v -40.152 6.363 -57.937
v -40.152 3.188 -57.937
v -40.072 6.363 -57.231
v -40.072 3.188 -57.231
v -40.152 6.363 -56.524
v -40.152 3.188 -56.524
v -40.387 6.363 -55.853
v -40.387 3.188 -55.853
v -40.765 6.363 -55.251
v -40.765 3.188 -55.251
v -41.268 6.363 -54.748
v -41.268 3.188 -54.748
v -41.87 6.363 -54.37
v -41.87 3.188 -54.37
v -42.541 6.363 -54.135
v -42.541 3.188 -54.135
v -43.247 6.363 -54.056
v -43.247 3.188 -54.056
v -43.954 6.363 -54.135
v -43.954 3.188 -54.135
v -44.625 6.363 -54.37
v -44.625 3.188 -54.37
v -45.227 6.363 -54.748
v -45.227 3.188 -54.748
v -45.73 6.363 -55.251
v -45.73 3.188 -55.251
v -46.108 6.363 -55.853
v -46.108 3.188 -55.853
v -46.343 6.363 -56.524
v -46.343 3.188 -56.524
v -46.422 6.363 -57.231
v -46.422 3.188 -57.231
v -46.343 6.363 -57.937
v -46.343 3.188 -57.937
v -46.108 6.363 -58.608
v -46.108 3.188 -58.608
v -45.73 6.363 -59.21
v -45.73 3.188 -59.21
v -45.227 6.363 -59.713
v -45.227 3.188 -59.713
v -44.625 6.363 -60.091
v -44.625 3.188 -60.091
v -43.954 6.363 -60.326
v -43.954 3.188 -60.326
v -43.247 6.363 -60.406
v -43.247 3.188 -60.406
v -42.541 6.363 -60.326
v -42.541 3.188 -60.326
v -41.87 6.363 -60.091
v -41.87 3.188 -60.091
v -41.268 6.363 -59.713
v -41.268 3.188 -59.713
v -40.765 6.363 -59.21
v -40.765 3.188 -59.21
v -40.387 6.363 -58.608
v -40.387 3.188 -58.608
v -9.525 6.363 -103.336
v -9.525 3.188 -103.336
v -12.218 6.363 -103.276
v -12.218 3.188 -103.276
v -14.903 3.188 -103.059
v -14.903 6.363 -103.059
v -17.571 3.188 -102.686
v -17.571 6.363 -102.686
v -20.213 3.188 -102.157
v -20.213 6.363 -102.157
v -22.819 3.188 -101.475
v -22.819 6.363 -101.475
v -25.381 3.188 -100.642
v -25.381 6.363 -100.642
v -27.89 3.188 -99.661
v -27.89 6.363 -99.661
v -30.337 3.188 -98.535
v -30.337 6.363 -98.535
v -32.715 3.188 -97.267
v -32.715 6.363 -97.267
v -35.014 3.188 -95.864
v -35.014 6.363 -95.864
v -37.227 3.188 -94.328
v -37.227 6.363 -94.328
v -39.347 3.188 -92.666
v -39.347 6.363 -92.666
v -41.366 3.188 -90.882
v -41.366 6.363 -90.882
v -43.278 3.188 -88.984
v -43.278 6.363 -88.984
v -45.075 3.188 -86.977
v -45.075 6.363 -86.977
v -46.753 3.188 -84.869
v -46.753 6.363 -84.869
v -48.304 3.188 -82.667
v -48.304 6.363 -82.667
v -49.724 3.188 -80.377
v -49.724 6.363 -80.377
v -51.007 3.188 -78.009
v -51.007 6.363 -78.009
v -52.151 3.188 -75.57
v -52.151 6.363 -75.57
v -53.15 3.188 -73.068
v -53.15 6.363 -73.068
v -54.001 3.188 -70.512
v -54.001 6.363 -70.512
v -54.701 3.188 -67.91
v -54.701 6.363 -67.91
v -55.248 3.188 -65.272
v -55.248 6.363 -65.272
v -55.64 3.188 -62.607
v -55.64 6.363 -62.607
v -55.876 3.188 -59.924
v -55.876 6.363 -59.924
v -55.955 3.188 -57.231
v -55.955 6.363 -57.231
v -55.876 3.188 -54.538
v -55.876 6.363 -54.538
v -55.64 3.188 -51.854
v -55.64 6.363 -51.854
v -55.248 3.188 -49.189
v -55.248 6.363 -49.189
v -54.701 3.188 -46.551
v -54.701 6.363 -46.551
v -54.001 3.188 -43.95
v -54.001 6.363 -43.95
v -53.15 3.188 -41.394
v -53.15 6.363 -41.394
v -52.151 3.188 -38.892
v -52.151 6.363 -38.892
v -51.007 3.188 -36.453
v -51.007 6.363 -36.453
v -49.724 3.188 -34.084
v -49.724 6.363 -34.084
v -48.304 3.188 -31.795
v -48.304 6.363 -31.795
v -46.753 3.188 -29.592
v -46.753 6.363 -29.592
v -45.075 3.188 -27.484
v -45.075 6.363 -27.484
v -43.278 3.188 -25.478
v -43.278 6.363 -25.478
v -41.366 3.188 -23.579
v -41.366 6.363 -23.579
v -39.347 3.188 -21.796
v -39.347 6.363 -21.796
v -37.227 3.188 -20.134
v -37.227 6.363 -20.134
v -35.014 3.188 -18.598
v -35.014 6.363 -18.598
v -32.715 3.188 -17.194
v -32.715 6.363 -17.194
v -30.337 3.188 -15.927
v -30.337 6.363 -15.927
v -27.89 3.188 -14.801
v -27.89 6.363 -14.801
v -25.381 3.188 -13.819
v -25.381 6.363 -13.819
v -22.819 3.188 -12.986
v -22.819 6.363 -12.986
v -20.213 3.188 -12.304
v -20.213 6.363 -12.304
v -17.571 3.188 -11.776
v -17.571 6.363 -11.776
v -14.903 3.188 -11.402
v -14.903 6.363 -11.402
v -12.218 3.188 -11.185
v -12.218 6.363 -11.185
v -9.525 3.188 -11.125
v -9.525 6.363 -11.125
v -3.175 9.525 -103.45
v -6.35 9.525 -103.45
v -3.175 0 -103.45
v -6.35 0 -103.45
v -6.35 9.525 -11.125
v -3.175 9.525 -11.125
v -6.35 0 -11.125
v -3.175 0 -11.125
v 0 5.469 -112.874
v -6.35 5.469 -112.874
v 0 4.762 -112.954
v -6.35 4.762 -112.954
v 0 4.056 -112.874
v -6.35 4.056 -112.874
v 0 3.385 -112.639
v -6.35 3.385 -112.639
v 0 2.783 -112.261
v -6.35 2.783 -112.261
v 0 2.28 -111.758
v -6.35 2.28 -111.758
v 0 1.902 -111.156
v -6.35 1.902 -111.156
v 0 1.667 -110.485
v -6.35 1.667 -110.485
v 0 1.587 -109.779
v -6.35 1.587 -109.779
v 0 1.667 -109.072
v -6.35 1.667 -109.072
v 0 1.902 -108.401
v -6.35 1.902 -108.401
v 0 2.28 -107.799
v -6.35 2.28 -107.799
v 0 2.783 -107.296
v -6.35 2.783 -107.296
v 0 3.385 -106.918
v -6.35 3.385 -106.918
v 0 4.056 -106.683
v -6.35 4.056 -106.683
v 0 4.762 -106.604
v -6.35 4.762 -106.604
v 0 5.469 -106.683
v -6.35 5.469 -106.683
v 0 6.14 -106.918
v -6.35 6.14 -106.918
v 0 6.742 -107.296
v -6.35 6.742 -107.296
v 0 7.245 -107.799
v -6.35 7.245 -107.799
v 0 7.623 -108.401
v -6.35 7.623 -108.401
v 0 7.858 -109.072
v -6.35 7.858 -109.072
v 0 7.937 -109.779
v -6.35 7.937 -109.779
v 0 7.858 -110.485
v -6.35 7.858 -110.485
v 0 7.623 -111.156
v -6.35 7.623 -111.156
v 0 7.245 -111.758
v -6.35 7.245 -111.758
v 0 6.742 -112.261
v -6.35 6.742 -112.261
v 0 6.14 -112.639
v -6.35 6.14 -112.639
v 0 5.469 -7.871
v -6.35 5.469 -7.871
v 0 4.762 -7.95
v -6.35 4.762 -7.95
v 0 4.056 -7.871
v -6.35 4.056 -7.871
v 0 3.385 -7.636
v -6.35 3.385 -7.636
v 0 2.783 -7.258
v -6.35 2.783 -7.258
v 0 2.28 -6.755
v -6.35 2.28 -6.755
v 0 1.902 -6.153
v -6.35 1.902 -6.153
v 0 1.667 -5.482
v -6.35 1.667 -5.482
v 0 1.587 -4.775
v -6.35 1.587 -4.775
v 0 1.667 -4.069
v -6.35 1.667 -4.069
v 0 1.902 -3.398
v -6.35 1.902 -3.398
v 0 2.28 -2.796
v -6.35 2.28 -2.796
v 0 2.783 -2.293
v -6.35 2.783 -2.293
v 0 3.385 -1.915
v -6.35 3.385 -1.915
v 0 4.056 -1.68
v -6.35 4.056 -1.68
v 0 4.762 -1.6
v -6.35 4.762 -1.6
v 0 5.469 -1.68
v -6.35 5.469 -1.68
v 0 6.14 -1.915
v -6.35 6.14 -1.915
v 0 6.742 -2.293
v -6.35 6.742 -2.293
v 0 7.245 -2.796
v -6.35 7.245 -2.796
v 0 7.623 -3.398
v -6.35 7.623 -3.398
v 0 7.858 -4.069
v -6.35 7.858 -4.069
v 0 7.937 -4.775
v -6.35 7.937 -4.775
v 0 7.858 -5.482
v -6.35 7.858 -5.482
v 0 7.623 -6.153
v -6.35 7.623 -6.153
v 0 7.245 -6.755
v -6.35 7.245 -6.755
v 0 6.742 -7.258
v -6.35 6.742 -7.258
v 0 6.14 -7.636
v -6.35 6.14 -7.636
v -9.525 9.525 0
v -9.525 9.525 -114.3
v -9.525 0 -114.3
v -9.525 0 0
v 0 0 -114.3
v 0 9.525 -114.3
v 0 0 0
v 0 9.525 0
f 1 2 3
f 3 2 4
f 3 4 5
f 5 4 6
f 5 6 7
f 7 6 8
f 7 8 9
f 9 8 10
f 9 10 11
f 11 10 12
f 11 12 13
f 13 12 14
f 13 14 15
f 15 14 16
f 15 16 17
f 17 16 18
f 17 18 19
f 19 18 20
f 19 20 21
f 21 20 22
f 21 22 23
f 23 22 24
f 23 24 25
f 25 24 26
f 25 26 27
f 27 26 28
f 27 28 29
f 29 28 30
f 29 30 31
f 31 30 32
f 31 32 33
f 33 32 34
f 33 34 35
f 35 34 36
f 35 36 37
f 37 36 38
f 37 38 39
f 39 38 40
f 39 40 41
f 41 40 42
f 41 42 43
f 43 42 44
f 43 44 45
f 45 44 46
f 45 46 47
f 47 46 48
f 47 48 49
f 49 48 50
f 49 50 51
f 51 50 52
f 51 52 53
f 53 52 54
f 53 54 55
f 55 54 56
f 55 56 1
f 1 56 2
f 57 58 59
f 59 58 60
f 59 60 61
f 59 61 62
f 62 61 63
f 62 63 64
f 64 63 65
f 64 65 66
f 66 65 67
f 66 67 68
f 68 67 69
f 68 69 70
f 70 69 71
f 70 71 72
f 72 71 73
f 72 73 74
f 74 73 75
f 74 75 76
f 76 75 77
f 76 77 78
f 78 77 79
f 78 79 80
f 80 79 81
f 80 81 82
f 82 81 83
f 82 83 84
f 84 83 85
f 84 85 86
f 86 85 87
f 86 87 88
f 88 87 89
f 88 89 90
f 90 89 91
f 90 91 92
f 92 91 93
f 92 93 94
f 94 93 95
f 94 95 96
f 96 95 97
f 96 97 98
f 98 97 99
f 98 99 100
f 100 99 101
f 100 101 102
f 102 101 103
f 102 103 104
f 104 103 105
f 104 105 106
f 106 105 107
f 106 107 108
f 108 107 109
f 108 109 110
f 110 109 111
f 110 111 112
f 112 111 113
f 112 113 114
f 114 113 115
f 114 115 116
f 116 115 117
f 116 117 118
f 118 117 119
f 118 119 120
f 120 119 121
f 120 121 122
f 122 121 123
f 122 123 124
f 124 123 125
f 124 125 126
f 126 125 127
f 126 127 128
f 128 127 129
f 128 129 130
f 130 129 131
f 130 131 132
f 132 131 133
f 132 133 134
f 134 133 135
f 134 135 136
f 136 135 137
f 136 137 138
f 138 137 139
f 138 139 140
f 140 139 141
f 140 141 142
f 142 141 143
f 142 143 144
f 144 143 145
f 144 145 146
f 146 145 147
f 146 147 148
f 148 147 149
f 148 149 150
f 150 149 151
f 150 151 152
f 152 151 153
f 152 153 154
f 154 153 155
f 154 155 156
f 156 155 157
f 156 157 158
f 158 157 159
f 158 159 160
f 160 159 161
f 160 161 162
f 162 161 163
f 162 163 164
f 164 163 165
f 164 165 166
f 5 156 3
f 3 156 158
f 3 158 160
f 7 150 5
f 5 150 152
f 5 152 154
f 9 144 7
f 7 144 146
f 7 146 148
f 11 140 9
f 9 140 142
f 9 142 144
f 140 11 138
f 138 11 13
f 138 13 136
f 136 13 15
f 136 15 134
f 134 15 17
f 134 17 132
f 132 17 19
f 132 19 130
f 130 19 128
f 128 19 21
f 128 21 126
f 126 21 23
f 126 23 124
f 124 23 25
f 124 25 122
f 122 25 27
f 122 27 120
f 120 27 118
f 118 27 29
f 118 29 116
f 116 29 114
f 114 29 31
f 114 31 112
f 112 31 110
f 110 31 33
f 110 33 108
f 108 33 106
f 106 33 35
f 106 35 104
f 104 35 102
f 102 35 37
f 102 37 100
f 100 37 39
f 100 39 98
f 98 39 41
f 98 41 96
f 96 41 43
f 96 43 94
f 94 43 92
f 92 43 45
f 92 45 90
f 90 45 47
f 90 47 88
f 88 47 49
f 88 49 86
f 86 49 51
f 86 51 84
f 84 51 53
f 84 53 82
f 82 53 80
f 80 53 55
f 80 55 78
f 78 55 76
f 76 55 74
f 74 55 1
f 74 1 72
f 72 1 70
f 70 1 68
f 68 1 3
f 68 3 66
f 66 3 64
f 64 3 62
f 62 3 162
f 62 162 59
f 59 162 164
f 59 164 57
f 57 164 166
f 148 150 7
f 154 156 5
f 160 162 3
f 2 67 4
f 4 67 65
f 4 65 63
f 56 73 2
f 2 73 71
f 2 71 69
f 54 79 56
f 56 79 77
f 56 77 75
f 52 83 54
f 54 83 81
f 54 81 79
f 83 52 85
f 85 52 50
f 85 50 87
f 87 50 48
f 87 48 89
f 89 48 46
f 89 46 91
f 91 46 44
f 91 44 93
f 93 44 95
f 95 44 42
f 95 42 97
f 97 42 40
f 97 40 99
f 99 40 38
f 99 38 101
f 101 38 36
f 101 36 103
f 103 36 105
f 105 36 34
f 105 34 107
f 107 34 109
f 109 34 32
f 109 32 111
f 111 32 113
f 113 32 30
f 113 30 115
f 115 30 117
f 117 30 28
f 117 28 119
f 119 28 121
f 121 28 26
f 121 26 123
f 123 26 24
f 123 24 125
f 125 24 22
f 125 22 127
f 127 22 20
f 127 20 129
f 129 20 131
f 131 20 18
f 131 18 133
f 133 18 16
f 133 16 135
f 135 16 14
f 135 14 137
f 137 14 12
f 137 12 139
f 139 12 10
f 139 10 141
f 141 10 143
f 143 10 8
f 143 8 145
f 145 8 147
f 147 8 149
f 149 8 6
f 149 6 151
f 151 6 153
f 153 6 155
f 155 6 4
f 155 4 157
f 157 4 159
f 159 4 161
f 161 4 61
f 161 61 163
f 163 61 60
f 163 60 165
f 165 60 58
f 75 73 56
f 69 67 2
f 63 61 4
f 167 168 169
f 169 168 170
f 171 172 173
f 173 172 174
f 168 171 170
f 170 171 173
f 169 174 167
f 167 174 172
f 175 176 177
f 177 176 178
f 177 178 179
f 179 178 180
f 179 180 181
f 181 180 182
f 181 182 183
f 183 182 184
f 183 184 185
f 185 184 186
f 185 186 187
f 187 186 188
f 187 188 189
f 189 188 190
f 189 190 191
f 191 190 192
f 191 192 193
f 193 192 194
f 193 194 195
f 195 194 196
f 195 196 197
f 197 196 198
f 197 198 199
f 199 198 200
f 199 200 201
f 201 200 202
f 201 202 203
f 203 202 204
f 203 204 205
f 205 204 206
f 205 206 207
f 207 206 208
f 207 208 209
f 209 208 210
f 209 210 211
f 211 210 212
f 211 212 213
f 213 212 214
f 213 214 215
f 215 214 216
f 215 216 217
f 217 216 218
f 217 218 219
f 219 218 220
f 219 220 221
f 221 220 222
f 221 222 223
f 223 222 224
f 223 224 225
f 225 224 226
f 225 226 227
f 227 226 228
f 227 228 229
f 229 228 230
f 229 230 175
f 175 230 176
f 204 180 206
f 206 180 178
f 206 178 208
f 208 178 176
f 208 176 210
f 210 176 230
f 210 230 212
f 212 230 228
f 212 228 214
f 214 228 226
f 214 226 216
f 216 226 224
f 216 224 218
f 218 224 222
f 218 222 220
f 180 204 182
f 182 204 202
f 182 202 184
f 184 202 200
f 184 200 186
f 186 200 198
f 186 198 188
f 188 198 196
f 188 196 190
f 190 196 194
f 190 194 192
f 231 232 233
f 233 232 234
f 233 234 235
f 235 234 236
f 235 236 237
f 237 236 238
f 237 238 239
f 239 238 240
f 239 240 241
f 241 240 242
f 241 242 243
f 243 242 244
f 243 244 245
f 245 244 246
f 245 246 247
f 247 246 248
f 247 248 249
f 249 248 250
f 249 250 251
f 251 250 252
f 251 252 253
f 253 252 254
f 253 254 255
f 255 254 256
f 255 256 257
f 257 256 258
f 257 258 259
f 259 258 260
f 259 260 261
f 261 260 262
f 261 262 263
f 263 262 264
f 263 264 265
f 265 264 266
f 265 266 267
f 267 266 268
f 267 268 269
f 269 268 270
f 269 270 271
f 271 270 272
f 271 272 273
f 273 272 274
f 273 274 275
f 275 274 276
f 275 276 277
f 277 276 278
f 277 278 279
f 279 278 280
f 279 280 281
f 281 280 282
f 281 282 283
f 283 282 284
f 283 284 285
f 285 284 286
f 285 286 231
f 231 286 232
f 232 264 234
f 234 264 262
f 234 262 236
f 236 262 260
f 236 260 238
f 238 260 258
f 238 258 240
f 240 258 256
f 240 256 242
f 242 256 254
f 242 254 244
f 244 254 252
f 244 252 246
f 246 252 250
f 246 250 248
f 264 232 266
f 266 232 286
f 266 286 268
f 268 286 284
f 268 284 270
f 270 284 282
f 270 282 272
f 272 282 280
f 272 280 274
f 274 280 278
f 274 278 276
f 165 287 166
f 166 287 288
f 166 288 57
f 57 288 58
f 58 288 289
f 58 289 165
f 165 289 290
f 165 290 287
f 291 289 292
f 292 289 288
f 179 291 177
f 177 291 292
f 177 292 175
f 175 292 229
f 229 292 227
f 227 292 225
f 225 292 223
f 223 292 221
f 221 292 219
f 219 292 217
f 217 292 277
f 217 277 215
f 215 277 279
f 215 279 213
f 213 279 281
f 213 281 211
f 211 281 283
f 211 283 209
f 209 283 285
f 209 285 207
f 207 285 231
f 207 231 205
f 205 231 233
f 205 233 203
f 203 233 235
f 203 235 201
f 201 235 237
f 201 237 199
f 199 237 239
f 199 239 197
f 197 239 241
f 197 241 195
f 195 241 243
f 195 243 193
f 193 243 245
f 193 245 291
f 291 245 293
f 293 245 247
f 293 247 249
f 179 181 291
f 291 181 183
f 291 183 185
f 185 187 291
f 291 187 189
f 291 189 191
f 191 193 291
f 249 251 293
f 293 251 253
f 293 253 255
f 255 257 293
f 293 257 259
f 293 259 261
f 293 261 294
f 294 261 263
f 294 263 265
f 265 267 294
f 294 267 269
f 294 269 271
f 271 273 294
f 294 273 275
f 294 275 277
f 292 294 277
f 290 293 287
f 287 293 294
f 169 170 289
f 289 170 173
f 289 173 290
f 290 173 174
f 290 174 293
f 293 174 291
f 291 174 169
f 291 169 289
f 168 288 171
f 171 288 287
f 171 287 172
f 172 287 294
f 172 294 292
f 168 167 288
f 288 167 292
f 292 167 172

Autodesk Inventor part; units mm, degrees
ref_plane "YZ Plane" through (0, 0, 0) normal (1, 0, 0) x (0, 1, 0)
ref_plane "XZ Plane" through (0, 0, 0) normal (0, 1, 0) x (-1, 0, 0)
ref_plane "XY Plane" through (0, 0, 0) normal (0, 0, 1) x (1, 0, 0)
sketch "Sketch1" plane through (0, 0, 0) normal (0, 1, 0) x (-1, 0, 0)
  line L0 (0, 0) -> (9.525, 0)
  line L1 (9.525, 0) -> (9.525, -114.3)
  line L2 (9.525, -114.3) -> (0, -114.3)
  line L3 (0, -114.3) -> (0, 0)
  dimension "d0" = 9.525
  dimension "d1" = 114.3
extrude "Extrusion1" add sketch "Sketch1" along normal blind 9.525
sketch "Sketch2" plane through (0, 9.525, 0) normal (0, 1, 0) x (1, 0, 0)
  point P0 (0, 0)
sketch "Sketch3" plane through (0, 0, 0) normal (1, 0, 0) x (0, 0, -1)
  circle A0 centre (4.7752, 4.7625) radius 3.175
  circle A1 centre (109.7788, 4.7625) radius 3.175
  point P0 (0, 0)
  dimension "d4" = 6.35
  dimension "d5" = 6.35
hole "Hole1" at (0, 4.7625, -109.7788) at (0, 4.7625, -4.7752) direction (-1, 0, 0) diameter 6.35 depth 6.35
sketch "Sketch4" plane through (0, 9.525, 0) normal (0, 1, 0) x (1, 0, 0)
  line L0 (-6.35, 106.6038) -> (0, 106.6038) projected
  line L1 (-6.35, 1.6002) -> (-6.35, 7.9502) projected
  line L2 (-3.175, 106.6038) -> (-6.35, 106.6038)
  line L3 (-6.35, 106.6038) -> (-6.35, 7.9502)
  line L4 (-6.35, 7.9502) -> (-3.175, 7.9502)
  line L5 (-3.175, 7.9502) -> (-3.175, 106.6038)
  point P0 (0, 0)
extrude "Extrusion2" cut sketch "Sketch4" against normal blind 12.7
sketch "Sketch5" plane through (0, 9.525, 0) normal (0, 1, 0) x (1, 0, 0)
  line L0 (-6.35, 106.6038) -> (-6.35, 7.9502) projected
  line L1 (-3.175, 7.9502) -> (-6.35, 7.9502)
  line L2 (-6.35, 7.9502) -> (-6.35, 11.1252)
  line L3 (-6.35, 11.1252) -> (-3.175, 11.1252)
  line L4 (-3.175, 11.1252) -> (-3.175, 7.9502)
  line L5 (-6.35, 106.6038) -> (-3.175, 106.6038) projected
  line L6 (-3.175, 106.6038) -> (-6.35, 106.6038)
  line L7 (-6.35, 106.6038) -> (-6.35, 103.4499)
  line L8 (-6.35, 103.4499) -> (-3.175, 103.4499)
  line L9 (-3.175, 103.4499) -> (-3.175, 106.6038)
  point P0 (0, 0)
  dimension "d15" = 3.175
extrude "Extrusion3" add sketch "Sketch5" against normal blind 9.525
sketch "Sketch6" plane through (-9.525, 0, -114.3) normal (-1, 0, 0) x (0, 0, 1)
  point P0 (114.3, 0)
sketch "Sketch7" plane through (-9.525, 0, -114.3) normal (-1, 0, 0) x (0, 0, 1)
  line L0 (10.8501, 9.525) -> (10.8501, 0) projected
  line L1 (10.8501, 6.3627) -> (20.6362, 6.3627)
  line L2 (20.6362, 3.1877) -> (10.8501, 3.1877)
  line L3 (10.8501, 3.1877) -> (10.8501, 6.3627)
  line L4 (103.1748, 9.525) -> (103.1748, 0) projected
  line L5 (10.8501, 6.3627) -> (103.1748, 6.3627)
  line L6 (103.1748, 6.3627) -> (103.1748, 3.1877)
  line L7 (103.1748, 3.1877) -> (10.8501, 3.1877)
  line L8 (10.8501, 3.1877) -> (10.8501, 6.3627)
  point P0 (114.3, 0)
  point P1 (10.8501, 4.7625)
  dimension "d18" = 3.175
sketch "Sketch8" plane through (-9.525, 0, -114.3) normal (-1, 0, 0) x (0, 0, 1)
  point P0 (114.3, 0)
ref_plane "Work Plane1" through (-9.525, 3.1877, -11.1252) normal (0, 1, 0) x (0, 0, -1)
sketch "Sketch9" plane through (-9.525, 3.1877, -11.1252) normal (0, 1, 0) x (0, 0, -1)
  point P0 (-11.1252, -9.525)
sketch "Sketch10" plane through (-9.525, 3.1877, -11.1252) normal (0, 1, 0) x (0, 0, -1)
  line L0 (-11.1252, 0) -> (103.1748, 0) projected
  arc A0 (92.2109, 0) -> (0.0002, 0) centre (46.1056, 0.3232) ccw
  line L1 (92.2109, 0) -> (0.0002, 0)
  line L2 (92.3247, -3.175) -> (0, -3.175) projected
  point P0 (-11.1252, -9.525)
  point P1 (-11.1252, -9.525)
  point P2 (-11.1252, -9.525)
extrude "Extrusion4" add sketch "Sketch10" along normal blind 3.175
sketch "Sketch11" plane through (-9.525, 3.1877, -11.1252) normal (0, -1, 0) x (1, 0, 0)
  arc A0 (0, -0.0002) -> (0, -92.2109) centre (-0.3232, -46.1056) ccw projected
  line L0 (-46.4297, -46.1056) -> (-33.7222, -46.1056)
  point P0 (9.525, 11.1252)
sketch "Sketch12" plane through (-9.525, 3.1877, -11.1252) normal (0, -1, 0) x (1, 0, 0)
  point P0 (9.525, 11.1252)
sketch "Sketch13" plane through (-9.525, 3.1877, -11.1252) normal (0, -1, 0) x (1, 0, 0)
  circle A0 centre (-33.7224, -46.1055) radius 3.175
  point P0 (9.525, 11.1252)
  dimension "d22" = 6.35
extrude "Extrusion5" cut sketch "Sketch13" against normal blind 3.175
properties part number "MTV Truning Connecter (10.7)"
